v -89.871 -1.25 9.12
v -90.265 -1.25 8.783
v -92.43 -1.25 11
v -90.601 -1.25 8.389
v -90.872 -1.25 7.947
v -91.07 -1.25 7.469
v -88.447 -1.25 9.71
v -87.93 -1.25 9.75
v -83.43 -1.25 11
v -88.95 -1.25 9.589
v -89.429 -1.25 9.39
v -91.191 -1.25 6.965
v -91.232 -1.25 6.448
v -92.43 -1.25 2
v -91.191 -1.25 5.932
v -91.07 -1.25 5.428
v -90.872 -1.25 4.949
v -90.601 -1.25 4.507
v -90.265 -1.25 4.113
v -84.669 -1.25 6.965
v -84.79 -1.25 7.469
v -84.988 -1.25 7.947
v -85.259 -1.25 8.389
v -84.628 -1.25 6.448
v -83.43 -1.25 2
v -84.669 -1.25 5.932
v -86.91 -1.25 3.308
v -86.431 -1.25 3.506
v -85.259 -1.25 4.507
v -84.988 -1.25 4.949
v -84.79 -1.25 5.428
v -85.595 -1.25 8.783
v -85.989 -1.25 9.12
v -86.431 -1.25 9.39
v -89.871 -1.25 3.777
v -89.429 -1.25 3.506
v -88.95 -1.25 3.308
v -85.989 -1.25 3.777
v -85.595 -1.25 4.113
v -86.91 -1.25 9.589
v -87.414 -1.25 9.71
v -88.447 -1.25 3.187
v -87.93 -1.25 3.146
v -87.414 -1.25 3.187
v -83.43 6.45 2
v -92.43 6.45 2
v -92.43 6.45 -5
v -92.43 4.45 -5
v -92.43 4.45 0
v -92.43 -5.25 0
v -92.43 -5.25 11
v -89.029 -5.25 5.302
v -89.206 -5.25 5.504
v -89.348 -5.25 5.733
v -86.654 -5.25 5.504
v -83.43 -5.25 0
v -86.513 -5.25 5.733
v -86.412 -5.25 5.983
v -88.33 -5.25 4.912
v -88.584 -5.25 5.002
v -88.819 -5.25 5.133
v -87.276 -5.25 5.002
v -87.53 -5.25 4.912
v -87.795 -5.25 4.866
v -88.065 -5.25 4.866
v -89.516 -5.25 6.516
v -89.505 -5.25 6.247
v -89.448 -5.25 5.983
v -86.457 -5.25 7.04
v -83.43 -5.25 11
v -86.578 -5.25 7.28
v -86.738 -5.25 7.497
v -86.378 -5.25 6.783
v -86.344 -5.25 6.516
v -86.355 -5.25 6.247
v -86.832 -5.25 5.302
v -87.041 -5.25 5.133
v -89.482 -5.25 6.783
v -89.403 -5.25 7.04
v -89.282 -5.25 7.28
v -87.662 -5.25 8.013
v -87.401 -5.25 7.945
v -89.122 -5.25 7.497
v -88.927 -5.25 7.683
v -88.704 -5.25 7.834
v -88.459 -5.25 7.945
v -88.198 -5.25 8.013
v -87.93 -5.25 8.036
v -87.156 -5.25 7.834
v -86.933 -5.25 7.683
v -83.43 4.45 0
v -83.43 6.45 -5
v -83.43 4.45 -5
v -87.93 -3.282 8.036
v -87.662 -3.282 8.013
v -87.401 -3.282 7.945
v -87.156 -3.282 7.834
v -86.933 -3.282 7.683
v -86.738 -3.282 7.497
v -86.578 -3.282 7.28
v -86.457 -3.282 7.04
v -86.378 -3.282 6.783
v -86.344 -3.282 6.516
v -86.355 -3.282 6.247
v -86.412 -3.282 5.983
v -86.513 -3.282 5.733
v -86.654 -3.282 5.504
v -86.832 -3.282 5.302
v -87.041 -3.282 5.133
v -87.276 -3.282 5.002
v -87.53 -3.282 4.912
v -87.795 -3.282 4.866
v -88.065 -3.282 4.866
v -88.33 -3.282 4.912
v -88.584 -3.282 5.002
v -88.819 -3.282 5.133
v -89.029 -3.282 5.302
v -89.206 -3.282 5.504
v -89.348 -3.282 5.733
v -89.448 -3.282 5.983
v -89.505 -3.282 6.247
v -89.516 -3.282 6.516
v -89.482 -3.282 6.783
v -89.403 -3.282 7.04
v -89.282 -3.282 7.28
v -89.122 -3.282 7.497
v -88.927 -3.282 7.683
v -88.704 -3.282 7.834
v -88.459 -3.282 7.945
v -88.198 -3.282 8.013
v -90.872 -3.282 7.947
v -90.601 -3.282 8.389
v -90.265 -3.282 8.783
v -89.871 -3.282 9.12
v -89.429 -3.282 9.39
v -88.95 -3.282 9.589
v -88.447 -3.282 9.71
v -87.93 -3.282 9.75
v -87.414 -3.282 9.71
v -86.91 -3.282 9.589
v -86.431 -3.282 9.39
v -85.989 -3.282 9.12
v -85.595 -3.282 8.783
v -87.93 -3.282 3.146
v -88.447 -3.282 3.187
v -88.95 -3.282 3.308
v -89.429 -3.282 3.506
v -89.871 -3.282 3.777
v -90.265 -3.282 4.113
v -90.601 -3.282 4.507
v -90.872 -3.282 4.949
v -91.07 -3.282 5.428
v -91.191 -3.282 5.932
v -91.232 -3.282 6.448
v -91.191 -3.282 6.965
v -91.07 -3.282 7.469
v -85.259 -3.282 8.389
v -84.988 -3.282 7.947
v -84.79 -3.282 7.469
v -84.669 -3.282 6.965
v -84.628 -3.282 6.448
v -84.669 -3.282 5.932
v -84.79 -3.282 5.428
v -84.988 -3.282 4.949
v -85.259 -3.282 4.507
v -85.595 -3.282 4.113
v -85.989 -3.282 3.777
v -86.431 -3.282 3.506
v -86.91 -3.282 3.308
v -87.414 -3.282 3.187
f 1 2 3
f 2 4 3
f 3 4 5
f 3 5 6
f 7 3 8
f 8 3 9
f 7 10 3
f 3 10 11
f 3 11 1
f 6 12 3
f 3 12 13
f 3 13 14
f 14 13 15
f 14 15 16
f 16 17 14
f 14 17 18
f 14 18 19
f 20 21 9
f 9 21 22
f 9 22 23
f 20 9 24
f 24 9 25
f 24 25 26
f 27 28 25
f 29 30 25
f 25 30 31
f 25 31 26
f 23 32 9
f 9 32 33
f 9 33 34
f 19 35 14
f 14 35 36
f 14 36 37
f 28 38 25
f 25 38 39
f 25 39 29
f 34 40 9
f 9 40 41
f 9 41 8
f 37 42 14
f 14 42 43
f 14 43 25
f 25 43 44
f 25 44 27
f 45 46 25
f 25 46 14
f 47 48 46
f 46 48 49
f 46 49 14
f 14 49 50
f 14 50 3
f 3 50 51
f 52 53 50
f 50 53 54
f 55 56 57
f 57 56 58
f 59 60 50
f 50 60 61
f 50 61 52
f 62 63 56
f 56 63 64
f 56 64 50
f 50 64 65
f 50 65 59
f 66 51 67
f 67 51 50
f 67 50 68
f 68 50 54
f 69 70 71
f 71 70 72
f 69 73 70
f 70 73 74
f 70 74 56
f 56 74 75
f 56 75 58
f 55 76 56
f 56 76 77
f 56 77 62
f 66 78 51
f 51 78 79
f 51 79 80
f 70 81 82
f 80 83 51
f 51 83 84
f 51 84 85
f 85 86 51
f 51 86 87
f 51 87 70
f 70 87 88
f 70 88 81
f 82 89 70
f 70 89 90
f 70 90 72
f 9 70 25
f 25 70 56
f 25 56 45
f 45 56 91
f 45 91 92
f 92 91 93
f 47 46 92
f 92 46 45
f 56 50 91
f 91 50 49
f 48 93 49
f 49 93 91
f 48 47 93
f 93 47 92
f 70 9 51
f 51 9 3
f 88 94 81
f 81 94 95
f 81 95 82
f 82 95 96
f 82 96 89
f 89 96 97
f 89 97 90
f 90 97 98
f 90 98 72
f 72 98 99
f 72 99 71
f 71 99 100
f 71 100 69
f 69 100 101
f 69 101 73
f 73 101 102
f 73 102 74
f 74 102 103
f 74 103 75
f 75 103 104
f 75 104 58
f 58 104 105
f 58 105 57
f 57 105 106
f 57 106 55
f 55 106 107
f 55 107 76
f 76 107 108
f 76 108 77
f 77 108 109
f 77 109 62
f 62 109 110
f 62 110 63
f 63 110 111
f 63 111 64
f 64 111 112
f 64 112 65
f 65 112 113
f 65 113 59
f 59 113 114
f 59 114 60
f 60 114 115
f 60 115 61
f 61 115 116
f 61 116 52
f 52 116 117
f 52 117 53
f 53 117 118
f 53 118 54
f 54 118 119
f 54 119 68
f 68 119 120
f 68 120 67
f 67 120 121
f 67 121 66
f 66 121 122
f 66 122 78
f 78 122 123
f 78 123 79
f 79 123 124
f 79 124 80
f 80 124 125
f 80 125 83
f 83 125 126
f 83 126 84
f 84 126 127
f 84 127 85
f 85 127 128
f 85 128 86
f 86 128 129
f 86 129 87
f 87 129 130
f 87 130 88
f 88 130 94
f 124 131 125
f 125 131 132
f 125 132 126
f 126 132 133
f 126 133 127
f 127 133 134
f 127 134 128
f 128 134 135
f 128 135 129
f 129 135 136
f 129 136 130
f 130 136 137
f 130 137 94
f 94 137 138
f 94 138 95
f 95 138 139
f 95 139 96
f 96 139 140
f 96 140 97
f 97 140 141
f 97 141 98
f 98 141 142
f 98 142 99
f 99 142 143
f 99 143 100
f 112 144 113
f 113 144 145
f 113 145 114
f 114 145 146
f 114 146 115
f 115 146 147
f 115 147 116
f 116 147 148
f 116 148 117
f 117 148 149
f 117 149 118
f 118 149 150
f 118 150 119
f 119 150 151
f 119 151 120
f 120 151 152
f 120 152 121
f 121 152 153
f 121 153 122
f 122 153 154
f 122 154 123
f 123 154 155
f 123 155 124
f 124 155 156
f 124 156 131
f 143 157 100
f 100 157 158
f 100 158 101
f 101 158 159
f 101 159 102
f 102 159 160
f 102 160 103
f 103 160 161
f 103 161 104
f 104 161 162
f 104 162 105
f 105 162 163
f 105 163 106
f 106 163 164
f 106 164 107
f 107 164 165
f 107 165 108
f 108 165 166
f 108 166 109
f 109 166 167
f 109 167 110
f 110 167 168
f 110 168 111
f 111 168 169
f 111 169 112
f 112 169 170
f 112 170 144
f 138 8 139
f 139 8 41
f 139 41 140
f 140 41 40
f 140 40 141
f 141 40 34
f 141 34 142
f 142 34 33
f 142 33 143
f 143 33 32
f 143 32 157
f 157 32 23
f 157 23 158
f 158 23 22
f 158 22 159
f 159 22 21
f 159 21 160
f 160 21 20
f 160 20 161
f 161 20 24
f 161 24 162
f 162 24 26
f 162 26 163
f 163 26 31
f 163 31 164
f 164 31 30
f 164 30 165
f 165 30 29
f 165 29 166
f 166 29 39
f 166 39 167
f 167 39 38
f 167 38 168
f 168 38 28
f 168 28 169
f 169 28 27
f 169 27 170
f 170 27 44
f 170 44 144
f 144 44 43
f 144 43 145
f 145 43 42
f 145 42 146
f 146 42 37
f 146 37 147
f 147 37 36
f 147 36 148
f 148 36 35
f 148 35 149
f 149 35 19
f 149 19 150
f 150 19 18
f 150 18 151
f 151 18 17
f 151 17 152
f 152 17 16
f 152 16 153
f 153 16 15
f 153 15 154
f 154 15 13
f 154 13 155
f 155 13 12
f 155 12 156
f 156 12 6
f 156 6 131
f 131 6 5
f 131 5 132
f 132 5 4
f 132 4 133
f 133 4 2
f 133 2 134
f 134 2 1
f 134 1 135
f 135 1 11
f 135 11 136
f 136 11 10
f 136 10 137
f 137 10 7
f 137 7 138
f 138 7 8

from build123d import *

# Parameters (mm, degrees)
SKETCH1_W                                           = 9
SKETCH1_H                                           = 11.7
BOSS_EXTRUDE1_DEPTH                                 = 2
SKETCH2_W                                           = 9
SKETCH2_H                                           = 2
BOSS_EXTRUDE2_DEPTH                                 = 5
SKETCH3_W                                           = 9
SKETCH3_H                                           = 4
BOSS_EXTRUDE3_DEPTH                                 = 9
CBORE_FOR_4_BINDING_HEAD_MACHINE_SCREW1_D           = 3.175
CBORE_FOR_4_BINDING_HEAD_MACHINE_SCREW1_CBORE_D     = 6.604
CBORE_FOR_4_BINDING_HEAD_MACHINE_SCREW1_CBORE_DEPTH = 2.032


with BuildPart() as part:
    # Sketch1 → Boss-Extrude1 (new body)
    with BuildSketch(Plane.XY):
        with Locations((-87.930083344, 0.6)):
            Rectangle(SKETCH1_W, SKETCH1_H)
    extrude(amount=BOSS_EXTRUDE1_DEPTH)

    # Sketch2 → Boss-Extrude2 (add)
    with BuildSketch(Plane(origin=(0, 0, 0), x_dir=(-1, 0, 0), z_dir=(0, 0, -1))):
        with Locations((87.930083344, 5.45)):
            Rectangle(SKETCH2_W, SKETCH2_H)
    extrude(amount=BOSS_EXTRUDE2_DEPTH)

    # Sketch3 → Boss-Extrude3 (add)
    with BuildSketch(Plane.XY.offset(2)):
        with Locations((-87.930083344, -3.25)):
            Rectangle(SKETCH3_W, SKETCH3_H)
    extrude(amount=BOSS_EXTRUDE3_DEPTH)

    # CBORE for #4 Binding Head Machine Screw1 (through all)
    with Locations(Plane(origin=(0, -1.25, 0), x_dir=(1, 0, 0), z_dir=(0, 1, 0))):
        with Locations((-87.930083344, -6.448155288)):
            CounterBoreHole(CBORE_FOR_4_BINDING_HEAD_MACHINE_SCREW1_D / 2, CBORE_FOR_4_BINDING_HEAD_MACHINE_SCREW1_CBORE_D / 2, CBORE_FOR_4_BINDING_HEAD_MACHINE_SCREW1_CBORE_DEPTH)


solid = part.part
